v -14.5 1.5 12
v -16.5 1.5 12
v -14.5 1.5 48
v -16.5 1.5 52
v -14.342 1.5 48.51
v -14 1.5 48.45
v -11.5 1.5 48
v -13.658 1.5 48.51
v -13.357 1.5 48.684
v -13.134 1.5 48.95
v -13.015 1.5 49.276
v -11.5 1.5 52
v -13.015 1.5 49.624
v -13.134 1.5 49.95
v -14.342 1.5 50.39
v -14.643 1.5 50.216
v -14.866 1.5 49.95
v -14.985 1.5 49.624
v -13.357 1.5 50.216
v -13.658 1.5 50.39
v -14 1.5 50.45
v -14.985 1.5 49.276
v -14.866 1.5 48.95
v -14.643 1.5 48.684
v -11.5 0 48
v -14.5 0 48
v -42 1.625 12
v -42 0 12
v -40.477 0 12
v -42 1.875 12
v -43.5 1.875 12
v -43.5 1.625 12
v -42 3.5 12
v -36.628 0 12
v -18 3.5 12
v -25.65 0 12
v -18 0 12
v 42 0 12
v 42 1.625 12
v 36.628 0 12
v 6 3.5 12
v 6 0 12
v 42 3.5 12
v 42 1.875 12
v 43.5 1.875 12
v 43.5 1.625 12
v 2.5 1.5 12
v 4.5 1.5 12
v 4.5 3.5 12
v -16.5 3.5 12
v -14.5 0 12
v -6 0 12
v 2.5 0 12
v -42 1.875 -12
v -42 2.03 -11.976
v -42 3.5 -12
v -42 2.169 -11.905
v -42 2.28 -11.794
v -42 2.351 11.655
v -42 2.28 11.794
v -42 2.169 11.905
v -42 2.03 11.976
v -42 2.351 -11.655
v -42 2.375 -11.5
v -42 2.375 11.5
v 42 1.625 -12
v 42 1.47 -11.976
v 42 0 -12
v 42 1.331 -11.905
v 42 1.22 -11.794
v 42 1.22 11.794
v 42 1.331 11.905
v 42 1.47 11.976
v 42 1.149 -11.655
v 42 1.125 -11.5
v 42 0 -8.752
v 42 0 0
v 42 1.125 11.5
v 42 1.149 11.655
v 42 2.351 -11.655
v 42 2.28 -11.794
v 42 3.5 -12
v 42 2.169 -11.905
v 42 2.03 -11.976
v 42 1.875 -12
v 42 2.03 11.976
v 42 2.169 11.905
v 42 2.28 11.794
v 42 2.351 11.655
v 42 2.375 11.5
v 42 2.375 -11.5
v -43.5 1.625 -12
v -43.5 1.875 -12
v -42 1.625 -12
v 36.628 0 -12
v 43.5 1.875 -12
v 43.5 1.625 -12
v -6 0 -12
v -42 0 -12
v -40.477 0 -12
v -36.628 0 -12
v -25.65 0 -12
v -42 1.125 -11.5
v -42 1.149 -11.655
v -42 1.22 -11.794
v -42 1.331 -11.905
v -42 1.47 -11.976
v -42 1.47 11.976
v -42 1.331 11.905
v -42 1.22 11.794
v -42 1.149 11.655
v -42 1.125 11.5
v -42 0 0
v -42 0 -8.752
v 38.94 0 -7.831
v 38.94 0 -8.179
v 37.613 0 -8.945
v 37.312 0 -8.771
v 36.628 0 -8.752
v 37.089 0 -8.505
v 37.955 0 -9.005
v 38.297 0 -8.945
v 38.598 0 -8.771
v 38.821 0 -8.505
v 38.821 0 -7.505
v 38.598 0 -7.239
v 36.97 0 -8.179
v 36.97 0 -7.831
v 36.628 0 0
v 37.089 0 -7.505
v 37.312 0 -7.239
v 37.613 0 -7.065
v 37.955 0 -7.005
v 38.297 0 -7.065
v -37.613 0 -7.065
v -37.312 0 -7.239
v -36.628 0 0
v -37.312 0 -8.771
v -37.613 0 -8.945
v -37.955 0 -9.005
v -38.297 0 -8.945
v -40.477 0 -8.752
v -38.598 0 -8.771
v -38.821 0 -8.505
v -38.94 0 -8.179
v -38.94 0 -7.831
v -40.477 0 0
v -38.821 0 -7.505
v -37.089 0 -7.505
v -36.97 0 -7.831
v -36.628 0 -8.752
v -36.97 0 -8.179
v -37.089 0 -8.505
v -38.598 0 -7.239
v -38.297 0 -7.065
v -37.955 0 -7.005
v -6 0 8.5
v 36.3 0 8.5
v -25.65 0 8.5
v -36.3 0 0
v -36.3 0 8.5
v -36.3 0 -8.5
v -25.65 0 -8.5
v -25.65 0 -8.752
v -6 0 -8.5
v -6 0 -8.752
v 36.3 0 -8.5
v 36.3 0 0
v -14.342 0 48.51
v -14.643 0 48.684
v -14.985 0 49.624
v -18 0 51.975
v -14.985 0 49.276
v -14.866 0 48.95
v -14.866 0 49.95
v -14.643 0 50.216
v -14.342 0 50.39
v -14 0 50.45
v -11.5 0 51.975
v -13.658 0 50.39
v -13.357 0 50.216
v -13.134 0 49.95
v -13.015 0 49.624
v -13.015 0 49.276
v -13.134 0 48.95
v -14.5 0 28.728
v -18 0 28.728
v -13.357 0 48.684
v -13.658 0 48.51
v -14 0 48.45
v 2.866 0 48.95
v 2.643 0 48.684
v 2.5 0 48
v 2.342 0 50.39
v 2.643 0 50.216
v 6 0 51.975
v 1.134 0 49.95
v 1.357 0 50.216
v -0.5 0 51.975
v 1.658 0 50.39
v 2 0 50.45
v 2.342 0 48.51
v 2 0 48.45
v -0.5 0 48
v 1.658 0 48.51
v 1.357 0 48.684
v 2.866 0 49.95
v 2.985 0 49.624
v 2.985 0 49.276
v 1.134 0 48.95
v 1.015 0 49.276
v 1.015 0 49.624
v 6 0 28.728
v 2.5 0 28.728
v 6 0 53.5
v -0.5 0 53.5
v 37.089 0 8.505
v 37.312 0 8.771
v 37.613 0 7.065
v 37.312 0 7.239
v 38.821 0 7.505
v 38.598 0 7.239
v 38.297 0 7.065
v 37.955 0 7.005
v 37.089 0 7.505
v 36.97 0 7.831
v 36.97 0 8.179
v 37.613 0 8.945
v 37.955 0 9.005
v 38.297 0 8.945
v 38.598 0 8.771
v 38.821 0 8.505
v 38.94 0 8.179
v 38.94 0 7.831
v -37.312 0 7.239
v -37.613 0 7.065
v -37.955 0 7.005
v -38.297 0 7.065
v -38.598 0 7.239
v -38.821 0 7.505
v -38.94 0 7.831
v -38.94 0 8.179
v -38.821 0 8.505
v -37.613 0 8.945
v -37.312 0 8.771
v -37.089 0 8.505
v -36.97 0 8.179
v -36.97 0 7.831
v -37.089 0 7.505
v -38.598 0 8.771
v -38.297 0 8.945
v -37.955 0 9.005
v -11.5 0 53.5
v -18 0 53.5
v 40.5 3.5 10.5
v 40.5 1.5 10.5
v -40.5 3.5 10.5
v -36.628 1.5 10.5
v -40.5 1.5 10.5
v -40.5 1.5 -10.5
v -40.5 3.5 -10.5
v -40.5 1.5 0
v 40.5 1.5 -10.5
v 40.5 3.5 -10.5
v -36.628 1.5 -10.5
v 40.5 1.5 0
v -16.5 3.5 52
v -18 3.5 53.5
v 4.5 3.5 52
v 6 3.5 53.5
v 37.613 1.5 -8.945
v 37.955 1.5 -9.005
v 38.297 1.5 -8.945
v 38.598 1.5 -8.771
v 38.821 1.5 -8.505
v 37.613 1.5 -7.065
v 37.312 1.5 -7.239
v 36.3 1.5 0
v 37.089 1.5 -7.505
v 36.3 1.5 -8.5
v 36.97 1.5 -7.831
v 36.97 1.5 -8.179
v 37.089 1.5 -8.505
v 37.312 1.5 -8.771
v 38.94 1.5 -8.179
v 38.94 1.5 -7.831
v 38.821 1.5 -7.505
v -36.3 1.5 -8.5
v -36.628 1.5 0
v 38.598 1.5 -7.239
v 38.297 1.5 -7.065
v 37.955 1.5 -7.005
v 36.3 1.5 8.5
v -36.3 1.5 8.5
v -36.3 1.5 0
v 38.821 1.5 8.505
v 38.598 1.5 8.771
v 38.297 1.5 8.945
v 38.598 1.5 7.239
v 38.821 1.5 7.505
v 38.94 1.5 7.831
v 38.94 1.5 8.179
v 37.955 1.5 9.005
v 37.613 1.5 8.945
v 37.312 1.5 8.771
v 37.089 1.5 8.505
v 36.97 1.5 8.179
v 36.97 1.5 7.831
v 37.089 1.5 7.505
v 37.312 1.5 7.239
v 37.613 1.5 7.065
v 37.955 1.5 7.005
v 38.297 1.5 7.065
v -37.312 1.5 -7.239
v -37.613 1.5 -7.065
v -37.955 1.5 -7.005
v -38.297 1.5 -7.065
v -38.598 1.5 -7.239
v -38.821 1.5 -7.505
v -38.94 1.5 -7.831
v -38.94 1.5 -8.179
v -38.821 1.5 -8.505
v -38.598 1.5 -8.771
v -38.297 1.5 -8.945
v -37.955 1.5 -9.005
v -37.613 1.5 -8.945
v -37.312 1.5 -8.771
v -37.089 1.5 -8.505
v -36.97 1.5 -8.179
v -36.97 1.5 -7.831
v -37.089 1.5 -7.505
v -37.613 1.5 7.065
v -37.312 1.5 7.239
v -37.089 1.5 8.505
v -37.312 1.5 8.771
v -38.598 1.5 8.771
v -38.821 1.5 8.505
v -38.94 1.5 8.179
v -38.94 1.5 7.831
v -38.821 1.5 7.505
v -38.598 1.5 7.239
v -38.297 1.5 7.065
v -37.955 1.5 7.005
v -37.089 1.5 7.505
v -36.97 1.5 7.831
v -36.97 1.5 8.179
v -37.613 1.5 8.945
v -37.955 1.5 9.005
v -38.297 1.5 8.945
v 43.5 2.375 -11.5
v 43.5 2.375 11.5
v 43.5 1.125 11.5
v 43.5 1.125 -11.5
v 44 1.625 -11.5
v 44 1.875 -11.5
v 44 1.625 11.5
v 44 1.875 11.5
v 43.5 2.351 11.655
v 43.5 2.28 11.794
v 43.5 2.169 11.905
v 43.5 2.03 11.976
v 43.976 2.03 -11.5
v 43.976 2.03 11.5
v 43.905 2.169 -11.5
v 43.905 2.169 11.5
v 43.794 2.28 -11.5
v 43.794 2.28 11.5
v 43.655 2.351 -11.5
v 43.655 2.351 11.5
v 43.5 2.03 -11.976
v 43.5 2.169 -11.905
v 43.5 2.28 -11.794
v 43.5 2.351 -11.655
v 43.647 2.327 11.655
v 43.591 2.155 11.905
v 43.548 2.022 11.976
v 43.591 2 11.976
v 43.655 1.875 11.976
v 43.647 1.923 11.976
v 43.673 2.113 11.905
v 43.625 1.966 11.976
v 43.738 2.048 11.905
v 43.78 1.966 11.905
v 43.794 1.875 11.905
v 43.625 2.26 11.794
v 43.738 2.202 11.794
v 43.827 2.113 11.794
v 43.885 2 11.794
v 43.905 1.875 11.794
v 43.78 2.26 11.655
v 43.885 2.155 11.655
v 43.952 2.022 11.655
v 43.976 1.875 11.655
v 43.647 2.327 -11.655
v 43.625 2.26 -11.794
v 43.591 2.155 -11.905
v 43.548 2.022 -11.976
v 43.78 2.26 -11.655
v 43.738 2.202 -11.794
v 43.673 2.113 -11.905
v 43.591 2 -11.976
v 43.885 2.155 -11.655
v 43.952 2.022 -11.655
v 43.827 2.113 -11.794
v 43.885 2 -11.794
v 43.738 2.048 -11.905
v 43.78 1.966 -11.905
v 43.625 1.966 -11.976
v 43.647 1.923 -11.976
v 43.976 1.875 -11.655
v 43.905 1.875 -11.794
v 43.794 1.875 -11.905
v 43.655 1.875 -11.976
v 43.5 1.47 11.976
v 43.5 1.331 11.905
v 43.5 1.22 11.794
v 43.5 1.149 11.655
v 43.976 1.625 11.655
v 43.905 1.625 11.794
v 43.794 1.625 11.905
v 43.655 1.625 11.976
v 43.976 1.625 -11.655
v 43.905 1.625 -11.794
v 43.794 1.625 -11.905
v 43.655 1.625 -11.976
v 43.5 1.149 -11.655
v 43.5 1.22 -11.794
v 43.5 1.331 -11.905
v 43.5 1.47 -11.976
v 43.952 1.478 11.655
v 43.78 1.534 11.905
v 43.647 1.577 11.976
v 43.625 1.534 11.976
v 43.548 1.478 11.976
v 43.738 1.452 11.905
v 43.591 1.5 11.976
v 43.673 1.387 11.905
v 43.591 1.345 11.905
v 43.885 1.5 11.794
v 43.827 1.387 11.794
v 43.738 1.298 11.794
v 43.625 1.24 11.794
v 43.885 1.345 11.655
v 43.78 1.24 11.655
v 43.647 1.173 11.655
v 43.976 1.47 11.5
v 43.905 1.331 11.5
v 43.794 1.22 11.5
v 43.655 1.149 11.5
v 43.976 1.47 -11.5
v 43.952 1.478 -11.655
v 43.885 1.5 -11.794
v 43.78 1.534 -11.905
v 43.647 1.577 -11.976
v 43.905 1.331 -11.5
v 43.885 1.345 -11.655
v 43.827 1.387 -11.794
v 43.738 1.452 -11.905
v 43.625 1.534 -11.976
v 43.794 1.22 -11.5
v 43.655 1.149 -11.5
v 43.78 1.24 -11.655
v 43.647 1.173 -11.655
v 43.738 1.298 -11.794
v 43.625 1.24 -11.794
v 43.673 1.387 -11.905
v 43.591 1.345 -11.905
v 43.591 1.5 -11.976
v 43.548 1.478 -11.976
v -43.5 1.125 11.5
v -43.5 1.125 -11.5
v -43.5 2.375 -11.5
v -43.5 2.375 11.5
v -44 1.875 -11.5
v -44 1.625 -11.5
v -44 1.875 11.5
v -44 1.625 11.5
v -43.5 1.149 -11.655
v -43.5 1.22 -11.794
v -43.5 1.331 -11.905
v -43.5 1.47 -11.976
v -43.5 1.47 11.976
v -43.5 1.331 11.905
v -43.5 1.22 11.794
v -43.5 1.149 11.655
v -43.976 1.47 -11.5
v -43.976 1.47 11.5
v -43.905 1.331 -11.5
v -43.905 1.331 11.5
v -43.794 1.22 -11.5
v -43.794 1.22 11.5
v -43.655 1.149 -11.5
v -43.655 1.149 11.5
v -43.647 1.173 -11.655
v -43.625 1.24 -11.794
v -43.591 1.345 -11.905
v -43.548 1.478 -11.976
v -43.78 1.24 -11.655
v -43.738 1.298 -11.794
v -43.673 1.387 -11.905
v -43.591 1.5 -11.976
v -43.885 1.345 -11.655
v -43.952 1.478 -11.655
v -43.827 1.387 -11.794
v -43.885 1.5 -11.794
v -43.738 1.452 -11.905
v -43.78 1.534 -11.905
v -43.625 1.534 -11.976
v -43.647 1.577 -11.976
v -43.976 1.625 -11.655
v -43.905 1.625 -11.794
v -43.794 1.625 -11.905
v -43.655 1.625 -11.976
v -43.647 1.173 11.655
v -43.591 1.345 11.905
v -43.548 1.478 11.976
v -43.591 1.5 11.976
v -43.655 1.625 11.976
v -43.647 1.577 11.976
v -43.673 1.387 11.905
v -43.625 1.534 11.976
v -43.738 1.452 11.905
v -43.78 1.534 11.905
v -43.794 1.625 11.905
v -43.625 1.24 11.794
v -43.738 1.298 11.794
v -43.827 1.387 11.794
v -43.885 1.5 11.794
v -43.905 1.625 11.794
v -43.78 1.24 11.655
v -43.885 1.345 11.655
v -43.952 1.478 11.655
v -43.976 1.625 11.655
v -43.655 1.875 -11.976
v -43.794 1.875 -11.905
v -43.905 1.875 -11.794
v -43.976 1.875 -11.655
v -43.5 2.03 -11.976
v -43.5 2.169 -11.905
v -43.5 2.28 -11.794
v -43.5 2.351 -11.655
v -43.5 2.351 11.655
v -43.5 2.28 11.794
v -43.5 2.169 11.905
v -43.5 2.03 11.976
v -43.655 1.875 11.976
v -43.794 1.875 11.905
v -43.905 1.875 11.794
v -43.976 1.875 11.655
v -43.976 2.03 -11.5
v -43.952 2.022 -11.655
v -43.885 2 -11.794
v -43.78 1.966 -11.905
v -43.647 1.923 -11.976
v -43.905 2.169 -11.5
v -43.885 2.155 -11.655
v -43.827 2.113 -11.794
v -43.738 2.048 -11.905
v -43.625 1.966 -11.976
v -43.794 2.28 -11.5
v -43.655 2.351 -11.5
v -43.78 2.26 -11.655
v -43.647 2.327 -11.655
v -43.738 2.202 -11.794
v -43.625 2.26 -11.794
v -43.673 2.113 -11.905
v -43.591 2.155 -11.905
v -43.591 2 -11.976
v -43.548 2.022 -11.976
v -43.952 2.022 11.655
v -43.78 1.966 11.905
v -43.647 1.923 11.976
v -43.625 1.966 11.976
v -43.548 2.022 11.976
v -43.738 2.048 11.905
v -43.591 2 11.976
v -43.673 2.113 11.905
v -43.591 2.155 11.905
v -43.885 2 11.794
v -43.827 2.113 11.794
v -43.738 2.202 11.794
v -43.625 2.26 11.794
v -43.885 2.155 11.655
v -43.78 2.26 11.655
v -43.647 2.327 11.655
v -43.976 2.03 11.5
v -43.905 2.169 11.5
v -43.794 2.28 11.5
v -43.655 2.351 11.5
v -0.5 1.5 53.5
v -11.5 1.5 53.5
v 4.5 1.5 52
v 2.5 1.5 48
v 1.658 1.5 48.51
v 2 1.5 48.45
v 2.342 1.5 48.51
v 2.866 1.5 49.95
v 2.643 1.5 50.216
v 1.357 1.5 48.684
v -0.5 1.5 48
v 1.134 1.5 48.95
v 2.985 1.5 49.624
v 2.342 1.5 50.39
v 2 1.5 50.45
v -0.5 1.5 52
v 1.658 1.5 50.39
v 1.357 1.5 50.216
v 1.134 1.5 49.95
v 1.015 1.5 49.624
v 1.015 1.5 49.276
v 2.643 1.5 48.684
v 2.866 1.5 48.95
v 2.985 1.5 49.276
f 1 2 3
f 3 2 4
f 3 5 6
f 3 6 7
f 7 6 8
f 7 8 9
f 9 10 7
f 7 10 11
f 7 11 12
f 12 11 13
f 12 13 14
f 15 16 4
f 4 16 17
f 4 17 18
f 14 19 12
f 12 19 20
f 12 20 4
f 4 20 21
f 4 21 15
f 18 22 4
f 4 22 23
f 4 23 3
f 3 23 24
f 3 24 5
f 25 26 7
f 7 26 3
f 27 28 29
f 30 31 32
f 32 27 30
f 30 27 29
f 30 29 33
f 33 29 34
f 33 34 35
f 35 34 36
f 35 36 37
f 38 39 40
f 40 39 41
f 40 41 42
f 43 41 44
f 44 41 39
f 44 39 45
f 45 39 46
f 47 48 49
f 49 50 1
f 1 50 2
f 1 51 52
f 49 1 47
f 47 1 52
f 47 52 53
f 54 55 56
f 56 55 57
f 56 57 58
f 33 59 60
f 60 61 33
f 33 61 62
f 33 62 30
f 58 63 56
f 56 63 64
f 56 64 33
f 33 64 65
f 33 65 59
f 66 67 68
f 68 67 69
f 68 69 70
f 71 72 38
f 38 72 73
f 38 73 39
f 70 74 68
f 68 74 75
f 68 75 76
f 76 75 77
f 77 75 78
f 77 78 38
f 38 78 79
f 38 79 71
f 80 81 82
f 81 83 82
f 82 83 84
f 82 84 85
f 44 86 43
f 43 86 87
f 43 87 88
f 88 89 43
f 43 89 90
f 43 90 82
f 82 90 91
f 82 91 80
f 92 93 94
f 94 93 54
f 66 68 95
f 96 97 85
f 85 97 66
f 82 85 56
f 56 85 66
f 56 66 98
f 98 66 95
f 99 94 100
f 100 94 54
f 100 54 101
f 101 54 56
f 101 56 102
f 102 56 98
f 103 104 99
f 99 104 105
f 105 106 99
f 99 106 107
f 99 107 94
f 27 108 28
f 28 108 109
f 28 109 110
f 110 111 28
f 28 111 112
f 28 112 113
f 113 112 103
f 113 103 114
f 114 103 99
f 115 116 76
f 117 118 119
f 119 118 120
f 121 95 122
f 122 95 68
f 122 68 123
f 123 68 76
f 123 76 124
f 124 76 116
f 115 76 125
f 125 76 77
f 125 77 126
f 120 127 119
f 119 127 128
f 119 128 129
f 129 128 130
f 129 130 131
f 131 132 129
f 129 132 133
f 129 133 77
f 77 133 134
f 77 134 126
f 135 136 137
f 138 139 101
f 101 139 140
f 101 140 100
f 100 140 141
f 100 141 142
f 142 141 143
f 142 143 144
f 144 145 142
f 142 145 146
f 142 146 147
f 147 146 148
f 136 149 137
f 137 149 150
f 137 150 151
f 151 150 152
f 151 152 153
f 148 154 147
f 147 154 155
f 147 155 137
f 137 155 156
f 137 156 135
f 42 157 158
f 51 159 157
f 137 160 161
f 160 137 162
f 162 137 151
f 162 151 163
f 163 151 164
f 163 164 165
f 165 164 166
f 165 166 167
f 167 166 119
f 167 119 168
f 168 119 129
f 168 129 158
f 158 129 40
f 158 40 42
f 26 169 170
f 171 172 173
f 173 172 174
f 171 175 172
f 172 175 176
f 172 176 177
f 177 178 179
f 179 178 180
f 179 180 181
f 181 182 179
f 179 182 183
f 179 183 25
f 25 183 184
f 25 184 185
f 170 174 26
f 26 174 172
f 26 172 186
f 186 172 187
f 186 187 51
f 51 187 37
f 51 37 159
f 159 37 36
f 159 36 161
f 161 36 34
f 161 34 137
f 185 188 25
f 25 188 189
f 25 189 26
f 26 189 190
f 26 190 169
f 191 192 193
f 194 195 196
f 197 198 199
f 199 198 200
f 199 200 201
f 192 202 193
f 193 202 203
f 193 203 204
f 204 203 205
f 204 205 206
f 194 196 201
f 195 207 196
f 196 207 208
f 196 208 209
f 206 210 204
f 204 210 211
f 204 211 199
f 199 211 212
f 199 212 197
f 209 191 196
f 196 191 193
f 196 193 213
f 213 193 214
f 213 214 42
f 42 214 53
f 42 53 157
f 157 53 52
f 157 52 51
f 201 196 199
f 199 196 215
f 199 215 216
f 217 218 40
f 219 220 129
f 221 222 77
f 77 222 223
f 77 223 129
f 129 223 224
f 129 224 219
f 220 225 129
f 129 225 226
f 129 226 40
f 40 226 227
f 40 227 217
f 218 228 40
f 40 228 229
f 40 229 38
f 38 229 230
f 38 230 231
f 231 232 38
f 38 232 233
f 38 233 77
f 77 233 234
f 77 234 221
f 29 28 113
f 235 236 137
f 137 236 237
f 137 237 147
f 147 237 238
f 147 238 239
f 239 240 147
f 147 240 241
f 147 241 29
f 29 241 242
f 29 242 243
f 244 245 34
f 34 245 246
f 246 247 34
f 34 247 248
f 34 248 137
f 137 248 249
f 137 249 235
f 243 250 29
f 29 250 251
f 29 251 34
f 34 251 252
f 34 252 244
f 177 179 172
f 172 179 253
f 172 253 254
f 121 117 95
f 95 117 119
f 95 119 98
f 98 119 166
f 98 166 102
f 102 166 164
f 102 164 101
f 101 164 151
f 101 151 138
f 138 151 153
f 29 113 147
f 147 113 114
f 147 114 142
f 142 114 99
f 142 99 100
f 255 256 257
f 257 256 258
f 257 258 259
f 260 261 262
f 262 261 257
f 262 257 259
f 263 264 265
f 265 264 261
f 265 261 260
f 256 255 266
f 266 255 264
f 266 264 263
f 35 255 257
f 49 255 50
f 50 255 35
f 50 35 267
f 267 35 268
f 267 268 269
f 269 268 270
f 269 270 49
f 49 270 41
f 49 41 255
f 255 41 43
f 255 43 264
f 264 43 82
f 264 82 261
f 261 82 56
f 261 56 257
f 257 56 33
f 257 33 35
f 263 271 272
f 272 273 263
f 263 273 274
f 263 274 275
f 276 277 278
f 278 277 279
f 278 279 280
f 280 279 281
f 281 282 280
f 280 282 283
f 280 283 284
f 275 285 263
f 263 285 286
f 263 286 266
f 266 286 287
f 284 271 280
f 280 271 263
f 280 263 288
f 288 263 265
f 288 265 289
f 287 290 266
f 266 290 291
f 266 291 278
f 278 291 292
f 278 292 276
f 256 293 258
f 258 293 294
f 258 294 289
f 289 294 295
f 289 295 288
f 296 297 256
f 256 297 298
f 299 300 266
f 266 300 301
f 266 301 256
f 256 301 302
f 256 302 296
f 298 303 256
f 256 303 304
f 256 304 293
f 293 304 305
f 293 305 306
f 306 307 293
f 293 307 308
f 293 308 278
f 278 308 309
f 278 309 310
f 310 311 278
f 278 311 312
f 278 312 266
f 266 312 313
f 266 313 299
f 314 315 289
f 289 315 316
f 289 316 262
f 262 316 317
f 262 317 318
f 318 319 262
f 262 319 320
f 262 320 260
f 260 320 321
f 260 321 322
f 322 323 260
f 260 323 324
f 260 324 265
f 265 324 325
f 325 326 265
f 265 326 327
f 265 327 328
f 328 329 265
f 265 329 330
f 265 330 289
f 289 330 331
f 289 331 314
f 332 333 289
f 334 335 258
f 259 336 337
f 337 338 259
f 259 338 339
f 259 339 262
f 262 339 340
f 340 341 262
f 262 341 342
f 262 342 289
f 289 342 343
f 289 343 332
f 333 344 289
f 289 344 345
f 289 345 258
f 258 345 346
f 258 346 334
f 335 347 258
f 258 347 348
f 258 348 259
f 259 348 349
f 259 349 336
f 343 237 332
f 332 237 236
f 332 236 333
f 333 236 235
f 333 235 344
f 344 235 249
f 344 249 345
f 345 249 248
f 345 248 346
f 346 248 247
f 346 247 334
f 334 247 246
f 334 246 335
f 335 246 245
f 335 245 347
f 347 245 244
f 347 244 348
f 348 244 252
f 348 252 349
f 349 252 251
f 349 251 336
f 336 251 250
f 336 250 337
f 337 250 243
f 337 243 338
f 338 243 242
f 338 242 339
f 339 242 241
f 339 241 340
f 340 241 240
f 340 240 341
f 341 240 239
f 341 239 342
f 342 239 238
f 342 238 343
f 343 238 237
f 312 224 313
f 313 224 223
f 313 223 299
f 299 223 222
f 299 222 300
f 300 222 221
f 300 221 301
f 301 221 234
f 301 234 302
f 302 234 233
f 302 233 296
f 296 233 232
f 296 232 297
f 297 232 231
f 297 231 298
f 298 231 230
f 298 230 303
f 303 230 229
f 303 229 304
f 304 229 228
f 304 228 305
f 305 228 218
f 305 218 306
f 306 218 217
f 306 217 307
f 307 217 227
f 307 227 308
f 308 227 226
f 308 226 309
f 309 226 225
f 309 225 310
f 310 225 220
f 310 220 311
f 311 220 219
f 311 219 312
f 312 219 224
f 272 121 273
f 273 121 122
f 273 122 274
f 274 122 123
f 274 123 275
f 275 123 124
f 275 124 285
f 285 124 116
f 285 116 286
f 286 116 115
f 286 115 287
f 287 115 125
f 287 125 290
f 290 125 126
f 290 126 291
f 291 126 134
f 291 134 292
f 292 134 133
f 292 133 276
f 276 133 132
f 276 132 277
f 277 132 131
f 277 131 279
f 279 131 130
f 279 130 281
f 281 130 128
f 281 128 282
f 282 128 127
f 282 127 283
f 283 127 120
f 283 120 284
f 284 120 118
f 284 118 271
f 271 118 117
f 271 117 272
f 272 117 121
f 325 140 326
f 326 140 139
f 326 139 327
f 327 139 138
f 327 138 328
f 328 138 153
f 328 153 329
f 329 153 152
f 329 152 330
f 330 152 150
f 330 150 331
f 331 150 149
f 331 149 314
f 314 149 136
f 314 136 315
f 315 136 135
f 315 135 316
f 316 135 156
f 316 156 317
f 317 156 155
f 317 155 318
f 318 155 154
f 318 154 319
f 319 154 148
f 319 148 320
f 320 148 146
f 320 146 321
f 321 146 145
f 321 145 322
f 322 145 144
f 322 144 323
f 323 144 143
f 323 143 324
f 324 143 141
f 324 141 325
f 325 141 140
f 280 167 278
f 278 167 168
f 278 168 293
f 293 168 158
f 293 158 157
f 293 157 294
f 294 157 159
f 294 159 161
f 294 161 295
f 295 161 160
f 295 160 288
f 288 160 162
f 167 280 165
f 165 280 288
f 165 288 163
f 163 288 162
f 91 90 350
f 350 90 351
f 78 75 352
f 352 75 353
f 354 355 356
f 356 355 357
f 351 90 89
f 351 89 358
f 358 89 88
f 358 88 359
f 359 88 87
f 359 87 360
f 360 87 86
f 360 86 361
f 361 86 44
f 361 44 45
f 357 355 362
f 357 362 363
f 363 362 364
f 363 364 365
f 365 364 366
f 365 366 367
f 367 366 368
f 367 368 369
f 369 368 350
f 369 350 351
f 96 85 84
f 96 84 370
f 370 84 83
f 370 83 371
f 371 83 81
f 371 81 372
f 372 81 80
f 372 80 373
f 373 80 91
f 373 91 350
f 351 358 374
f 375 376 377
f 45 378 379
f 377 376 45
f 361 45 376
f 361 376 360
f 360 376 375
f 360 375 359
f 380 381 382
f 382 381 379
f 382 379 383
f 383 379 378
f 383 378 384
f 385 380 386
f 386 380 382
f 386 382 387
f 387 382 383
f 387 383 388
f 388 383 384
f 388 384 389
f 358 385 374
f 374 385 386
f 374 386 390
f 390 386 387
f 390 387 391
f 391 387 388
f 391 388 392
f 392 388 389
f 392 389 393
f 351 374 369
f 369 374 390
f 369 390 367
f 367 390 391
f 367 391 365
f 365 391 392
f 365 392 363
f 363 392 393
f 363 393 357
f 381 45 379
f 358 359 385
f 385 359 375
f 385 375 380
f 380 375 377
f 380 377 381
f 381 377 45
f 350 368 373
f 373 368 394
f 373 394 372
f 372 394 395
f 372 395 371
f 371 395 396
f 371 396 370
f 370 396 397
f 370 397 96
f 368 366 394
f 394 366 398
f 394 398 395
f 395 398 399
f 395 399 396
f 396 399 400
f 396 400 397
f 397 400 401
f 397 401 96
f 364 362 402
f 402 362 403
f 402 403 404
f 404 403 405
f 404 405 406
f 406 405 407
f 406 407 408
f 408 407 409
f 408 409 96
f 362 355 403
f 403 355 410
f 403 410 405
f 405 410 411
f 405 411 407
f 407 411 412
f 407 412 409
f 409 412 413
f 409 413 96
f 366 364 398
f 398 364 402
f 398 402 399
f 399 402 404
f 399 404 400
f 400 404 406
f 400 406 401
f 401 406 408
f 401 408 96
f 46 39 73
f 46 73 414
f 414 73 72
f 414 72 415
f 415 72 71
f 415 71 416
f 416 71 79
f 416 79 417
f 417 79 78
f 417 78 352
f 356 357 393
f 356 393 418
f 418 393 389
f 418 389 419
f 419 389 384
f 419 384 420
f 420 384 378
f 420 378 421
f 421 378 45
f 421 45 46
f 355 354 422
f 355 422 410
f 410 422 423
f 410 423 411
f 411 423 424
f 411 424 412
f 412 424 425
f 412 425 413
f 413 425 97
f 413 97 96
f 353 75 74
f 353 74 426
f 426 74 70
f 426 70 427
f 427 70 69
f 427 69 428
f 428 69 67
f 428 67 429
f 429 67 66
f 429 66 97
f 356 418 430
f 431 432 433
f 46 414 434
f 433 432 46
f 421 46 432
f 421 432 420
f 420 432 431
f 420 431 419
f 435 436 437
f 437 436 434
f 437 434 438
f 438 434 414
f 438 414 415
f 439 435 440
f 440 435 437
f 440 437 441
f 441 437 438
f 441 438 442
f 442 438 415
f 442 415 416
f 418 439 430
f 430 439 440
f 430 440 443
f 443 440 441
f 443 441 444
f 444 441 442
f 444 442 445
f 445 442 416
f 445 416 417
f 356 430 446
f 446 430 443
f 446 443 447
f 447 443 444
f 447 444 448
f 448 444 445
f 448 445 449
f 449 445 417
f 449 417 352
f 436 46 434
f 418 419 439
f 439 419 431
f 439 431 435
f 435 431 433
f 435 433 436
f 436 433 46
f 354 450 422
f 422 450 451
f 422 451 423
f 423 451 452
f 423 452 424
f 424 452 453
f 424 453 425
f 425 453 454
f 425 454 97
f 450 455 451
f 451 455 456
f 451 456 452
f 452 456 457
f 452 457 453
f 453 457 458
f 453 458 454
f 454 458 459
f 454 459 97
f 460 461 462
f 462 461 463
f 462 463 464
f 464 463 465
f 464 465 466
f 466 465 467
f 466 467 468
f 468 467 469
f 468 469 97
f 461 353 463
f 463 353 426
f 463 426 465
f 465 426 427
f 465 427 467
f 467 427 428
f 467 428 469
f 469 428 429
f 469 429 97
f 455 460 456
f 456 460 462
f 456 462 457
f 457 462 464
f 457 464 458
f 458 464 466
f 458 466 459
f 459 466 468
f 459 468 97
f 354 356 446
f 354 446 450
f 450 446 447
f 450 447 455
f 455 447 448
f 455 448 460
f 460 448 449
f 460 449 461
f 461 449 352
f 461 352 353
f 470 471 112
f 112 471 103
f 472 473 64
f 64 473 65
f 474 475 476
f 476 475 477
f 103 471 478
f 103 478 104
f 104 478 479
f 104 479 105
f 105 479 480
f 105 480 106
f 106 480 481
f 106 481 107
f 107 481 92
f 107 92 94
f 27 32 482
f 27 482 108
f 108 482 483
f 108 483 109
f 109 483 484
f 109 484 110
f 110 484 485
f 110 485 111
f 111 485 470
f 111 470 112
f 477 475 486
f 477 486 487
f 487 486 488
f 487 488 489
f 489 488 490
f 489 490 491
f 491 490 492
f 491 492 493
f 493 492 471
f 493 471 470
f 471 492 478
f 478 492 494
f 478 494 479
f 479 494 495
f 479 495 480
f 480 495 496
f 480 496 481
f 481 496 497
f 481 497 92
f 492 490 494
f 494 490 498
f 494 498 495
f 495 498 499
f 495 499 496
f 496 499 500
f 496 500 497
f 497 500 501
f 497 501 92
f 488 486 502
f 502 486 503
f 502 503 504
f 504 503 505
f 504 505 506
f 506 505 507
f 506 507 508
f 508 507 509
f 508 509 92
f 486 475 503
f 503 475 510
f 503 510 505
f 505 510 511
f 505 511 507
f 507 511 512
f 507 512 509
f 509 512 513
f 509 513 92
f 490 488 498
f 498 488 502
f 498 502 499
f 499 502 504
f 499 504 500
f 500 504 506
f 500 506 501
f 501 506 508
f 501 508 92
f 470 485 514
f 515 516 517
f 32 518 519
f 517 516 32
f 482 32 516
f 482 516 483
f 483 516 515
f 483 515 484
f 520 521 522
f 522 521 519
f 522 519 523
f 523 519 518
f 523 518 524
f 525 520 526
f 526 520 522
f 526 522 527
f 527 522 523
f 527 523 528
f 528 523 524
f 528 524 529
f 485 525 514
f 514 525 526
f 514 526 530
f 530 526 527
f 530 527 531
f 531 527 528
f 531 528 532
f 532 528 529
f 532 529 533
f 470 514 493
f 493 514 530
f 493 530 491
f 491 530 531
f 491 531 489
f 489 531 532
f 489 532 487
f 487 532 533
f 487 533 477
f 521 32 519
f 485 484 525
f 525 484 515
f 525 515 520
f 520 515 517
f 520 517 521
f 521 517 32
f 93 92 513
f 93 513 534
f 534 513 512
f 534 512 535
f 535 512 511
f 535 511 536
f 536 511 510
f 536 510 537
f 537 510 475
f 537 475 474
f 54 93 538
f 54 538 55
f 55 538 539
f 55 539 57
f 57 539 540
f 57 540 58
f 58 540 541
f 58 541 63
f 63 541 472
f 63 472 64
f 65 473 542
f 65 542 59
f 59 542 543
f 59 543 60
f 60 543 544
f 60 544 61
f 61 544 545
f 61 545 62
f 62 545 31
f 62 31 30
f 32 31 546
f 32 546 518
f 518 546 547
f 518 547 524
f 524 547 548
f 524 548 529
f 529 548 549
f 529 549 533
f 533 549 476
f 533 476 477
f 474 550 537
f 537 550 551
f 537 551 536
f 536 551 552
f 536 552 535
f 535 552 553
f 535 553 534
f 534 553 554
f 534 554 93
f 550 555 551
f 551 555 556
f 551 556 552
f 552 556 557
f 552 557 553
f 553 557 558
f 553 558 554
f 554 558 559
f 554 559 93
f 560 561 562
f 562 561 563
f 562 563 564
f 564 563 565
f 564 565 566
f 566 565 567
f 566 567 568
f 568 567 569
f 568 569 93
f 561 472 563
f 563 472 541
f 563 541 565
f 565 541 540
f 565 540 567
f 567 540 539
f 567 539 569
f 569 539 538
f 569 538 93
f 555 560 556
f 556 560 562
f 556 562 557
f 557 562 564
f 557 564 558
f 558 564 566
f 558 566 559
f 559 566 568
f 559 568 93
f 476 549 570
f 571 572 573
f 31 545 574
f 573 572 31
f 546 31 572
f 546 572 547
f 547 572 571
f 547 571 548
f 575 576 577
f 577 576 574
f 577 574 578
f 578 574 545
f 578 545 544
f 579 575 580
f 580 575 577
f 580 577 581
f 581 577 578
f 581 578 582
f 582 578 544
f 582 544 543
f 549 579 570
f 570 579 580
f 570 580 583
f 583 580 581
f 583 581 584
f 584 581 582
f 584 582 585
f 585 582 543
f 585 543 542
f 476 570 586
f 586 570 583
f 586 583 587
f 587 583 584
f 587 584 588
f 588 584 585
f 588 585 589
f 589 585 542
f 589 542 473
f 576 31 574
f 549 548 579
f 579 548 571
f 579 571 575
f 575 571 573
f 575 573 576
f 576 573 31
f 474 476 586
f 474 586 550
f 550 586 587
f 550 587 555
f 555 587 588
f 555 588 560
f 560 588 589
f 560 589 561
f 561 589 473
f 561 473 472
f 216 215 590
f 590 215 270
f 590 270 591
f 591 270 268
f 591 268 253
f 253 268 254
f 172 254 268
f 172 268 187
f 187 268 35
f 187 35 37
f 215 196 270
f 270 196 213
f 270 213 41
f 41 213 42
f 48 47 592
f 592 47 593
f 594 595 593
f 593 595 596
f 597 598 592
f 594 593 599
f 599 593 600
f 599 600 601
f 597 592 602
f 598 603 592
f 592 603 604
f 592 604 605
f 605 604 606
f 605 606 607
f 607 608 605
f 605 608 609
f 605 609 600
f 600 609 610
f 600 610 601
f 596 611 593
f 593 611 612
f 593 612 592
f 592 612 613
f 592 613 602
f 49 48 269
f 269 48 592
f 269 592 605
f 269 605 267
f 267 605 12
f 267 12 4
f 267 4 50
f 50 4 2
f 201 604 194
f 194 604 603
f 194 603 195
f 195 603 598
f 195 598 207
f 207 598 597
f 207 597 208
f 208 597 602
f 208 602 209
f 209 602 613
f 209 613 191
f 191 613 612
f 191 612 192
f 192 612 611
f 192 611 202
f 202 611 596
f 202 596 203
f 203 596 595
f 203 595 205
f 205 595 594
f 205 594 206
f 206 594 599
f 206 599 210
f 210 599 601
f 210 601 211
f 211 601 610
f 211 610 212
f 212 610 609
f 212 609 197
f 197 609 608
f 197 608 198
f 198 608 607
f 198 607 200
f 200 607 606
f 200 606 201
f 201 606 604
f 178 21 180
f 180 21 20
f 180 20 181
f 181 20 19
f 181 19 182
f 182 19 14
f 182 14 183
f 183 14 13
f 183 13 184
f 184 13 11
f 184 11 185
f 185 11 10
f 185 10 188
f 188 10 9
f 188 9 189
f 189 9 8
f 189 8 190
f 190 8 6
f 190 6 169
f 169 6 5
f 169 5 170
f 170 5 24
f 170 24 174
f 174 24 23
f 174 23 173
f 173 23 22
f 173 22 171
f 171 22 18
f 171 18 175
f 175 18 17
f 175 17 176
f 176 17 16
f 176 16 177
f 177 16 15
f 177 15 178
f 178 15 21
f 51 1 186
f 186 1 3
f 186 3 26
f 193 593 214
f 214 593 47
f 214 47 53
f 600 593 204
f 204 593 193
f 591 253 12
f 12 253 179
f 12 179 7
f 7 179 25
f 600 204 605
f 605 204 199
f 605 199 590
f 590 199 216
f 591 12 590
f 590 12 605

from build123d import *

# Parameters (mm, degrees)
SKETCH2_W            = 84
SKETCH2_H            = 24
BOSS_EXTRUDE1_DEPTH  = 1.5
SKETCH3_W            = 84
SKETCH3_H            = 24
SKETCH3_W_2          = 81
SKETCH3_H_2          = 21
BOSS_EXTRUDE2_DEPTH  = 2
CUT_EXTRUDE1_REACH   = 45.821
SKETCH4_R            = 1
SKETCH5_W            = 72.6
SKETCH5_H            = 17
CUT_EXTRUDE2_DEPTH   = 44.726422218
SKETCH8_W            = 24
SKETCH8_H            = 1.25
BOSS_EXTRUDE4_DEPTH  = 2
FILLET1_R            = 0.5
FILLET1_OF_MIRROR1_R = 0.5
SKETCH9_W            = 24
SKETCH9_H            = 41.5
BOSS_EXTRUDE5_DEPTH  = 1.5
BOSS_EXTRUDE6_DEPTH  = 2
SKETCH11_R           = 1
CUT_EXTRUDE4_DEPTH   = 70.298268377
SKETCH12_W           = 17
SKETCH12_H           = 36
CUT_EXTRUDE5_DEPTH   = 70.298268377
SKETCH13_W           = 11
SKETCH13_H           = 5.5
CUT_EXTRUDE6_DEPTH   = 1.5


with BuildPart() as part:
    # Sketch2 → Boss-Extrude1 (new body)
    with BuildSketch(Plane(origin=(0, 0, 0), x_dir=(1, 0, 0), z_dir=(0, 1, 0))):
        Rectangle(SKETCH2_W, SKETCH2_H)
    extrude(amount=BOSS_EXTRUDE1_DEPTH)

    # Sketch3 → Boss-Extrude2 (add)
    with BuildSketch(Plane(origin=(0, 1.5, 0), x_dir=(1, 0, 0), z_dir=(0, 1, 0))):
        Rectangle(SKETCH3_W, SKETCH3_H)
        Rectangle(SKETCH3_W_2, SKETCH3_H_2, mode=Mode.SUBTRACT)
    extrude(amount=BOSS_EXTRUDE2_DEPTH)

    # Sketch4 → Cut-Extrude1 (cut, up to next)
    with BuildSketch(Plane.XZ, mode=Mode.PRIVATE) as cut_extrude1_sk1:
        with Locations(Location((-37.955, 8.005, 0), (0, 0, 270))):
            Circle(SKETCH4_R)
    cut_extrude1_tool1 = extrude(cut_extrude1_sk1.sketch, amount=-CUT_EXTRUDE1_REACH, mode=Mode.PRIVATE) & part.part
    # Sketch4 → Cut-Extrude1 (cut, up to next)
    with BuildSketch(Plane.XZ, mode=Mode.PRIVATE) as cut_extrude1_sk2:
        with Locations(Location((37.955, 8.005, 0), (0, 0, 270))):
            Circle(SKETCH4_R)
    cut_extrude1_tool2 = extrude(cut_extrude1_sk2.sketch, amount=-CUT_EXTRUDE1_REACH, mode=Mode.PRIVATE) & part.part
    # Sketch4 → Cut-Extrude1 (cut, up to next)
    with BuildSketch(Plane.XZ, mode=Mode.PRIVATE) as cut_extrude1_sk3:
        with Locations(Location((37.955, -8.005, 0), (0, 0, 270))):
            Circle(SKETCH4_R)
    cut_extrude1_tool3 = extrude(cut_extrude1_sk3.sketch, amount=-CUT_EXTRUDE1_REACH, mode=Mode.PRIVATE) & part.part
    # Sketch4 → Cut-Extrude1 (cut, up to next)
    with BuildSketch(Plane.XZ, mode=Mode.PRIVATE) as cut_extrude1_sk4:
        with Locations(Location((-37.955, -8.005, 0), (0, 0, 270))):
            Circle(SKETCH4_R)
    cut_extrude1_tool4 = extrude(cut_extrude1_sk4.sketch, amount=-CUT_EXTRUDE1_REACH, mode=Mode.PRIVATE) & part.part
    add(cut_extrude1_tool1.solids().sort_by_distance((-37.955, 0, 8.005))[0], mode=Mode.SUBTRACT)
    add(cut_extrude1_tool2.solids().sort_by_distance((37.955, 0, 8.005))[0], mode=Mode.SUBTRACT)
    add(cut_extrude1_tool3.solids().sort_by_distance((37.955, 0, -8.005))[0], mode=Mode.SUBTRACT)
    add(cut_extrude1_tool4.solids().sort_by_distance((-37.955, 0, -8.005))[0], mode=Mode.SUBTRACT)

    # Sketch5 → Cut-Extrude2 (cut, through all)
    with BuildSketch(Plane(origin=(0, 1.5, 0), x_dir=(1, 0, 0), z_dir=(0, 1, 0))):
        Rectangle(SKETCH5_W, SKETCH5_H)
    extrude(amount=-CUT_EXTRUDE2_DEPTH, mode=Mode.SUBTRACT)

    # Sketch8 → Boss-Extrude4 (add)
    with BuildSketch(Plane(origin=(42, 0, 0), x_dir=(0, 0, -1), z_dir=(1, 0, 0))):
        with Locations((0, 1.75)):
            Rectangle(SKETCH8_W, SKETCH8_H)
    boss_extrude4 = extrude(amount=BOSS_EXTRUDE4_DEPTH)

    # Fillet1
    fillet1_edges = [part.edges().sort_by_distance(p)[0] for p in [
        (43, 1.125, -12),
        (43, 2.375, -12),
        (43, 2.375, 12),
        (43, 1.125, 12),
        (44, 1.75, -12),
        (44, 2.375, 0),
        (44, 1.75, 12),
        (44, 1.125, 0),
    ]]
    fillet(fillet1_edges, radius=FILLET1_R)

    # Mirror1: Boss-Extrude4 across plane
    add(boss_extrude4.mirror(Plane(origin=(0, 0, 0), x_dir=(0, 0, 1), z_dir=(1, 0, 0))))

    # Fillet1 of Mirror1
    fillet1_of_mirror1_edges = [part.edges().sort_by_distance(p)[0] for p in [
        (-43, 1.125, -12),
        (-43, 2.375, -12),
        (-43, 2.375, 12),
        (-43, 1.125, 12),
        (-44, 1.75, -12),
        (-44, 2.375, 0),
        (-44, 1.75, 12),
        (-44, 1.125, 0),
    ]]
    fillet(fillet1_of_mirror1_edges, radius=FILLET1_OF_MIRROR1_R)

    # Sketch9 → Boss-Extrude5 (add)
    with BuildSketch(Plane(origin=(0, 0, 0), x_dir=(1, 0, 0), z_dir=(0, 1, 0))):
        with Locations((-6, -32.75)):
            Rectangle(SKETCH9_W, SKETCH9_H)
    extrude(amount=BOSS_EXTRUDE5_DEPTH)

    # Sketch10 → Boss-Extrude6 (add)
    with BuildSketch(Plane(origin=(0, 1.5, 0), x_dir=(1, 0, 0), z_dir=(0, 1, 0))):
        Polygon((-16.5, -52), (-16.5, -13.5), (-16.5, -12), (-18, -12), (-18, -53.5), (6, -53.5), (6, -12), (4.5, -12), (4.5, -13.5), (4.5, -52), align=None)
    extrude(amount=BOSS_EXTRUDE6_DEPTH)

    # Sketch11 → Cut-Extrude4 (cut, through all)
    with BuildSketch(Plane(origin=(0, 1.5, 0), x_dir=(1, 0, 0), z_dir=(0, 1, 0))):
        with Locations(Location((-14, -49.45, 0), (0, 0, 270))):
            Circle(SKETCH11_R)
        with Locations(Location((2, -49.45, 0), (0, 0, 270))):
            Circle(SKETCH11_R)
    extrude(amount=-CUT_EXTRUDE4_DEPTH, mode=Mode.SUBTRACT)

    # Sketch12 → Cut-Extrude5 (cut, through all)
    with BuildSketch(Plane(origin=(0, 1.5, 0), x_dir=(1, 0, 0), z_dir=(0, 1, 0))):
        with Locations((-6, -30)):
            Rectangle(SKETCH12_W, SKETCH12_H)
    extrude(amount=-CUT_EXTRUDE5_DEPTH, mode=Mode.SUBTRACT)

    # Sketch13 → Cut-Extrude6 (cut)
    with BuildSketch(Plane.XZ):
        with Locations((-6, 50.75)):
            Rectangle(SKETCH13_W, SKETCH13_H)
    extrude(amount=-CUT_EXTRUDE6_DEPTH, mode=Mode.SUBTRACT)


solid = part.part
